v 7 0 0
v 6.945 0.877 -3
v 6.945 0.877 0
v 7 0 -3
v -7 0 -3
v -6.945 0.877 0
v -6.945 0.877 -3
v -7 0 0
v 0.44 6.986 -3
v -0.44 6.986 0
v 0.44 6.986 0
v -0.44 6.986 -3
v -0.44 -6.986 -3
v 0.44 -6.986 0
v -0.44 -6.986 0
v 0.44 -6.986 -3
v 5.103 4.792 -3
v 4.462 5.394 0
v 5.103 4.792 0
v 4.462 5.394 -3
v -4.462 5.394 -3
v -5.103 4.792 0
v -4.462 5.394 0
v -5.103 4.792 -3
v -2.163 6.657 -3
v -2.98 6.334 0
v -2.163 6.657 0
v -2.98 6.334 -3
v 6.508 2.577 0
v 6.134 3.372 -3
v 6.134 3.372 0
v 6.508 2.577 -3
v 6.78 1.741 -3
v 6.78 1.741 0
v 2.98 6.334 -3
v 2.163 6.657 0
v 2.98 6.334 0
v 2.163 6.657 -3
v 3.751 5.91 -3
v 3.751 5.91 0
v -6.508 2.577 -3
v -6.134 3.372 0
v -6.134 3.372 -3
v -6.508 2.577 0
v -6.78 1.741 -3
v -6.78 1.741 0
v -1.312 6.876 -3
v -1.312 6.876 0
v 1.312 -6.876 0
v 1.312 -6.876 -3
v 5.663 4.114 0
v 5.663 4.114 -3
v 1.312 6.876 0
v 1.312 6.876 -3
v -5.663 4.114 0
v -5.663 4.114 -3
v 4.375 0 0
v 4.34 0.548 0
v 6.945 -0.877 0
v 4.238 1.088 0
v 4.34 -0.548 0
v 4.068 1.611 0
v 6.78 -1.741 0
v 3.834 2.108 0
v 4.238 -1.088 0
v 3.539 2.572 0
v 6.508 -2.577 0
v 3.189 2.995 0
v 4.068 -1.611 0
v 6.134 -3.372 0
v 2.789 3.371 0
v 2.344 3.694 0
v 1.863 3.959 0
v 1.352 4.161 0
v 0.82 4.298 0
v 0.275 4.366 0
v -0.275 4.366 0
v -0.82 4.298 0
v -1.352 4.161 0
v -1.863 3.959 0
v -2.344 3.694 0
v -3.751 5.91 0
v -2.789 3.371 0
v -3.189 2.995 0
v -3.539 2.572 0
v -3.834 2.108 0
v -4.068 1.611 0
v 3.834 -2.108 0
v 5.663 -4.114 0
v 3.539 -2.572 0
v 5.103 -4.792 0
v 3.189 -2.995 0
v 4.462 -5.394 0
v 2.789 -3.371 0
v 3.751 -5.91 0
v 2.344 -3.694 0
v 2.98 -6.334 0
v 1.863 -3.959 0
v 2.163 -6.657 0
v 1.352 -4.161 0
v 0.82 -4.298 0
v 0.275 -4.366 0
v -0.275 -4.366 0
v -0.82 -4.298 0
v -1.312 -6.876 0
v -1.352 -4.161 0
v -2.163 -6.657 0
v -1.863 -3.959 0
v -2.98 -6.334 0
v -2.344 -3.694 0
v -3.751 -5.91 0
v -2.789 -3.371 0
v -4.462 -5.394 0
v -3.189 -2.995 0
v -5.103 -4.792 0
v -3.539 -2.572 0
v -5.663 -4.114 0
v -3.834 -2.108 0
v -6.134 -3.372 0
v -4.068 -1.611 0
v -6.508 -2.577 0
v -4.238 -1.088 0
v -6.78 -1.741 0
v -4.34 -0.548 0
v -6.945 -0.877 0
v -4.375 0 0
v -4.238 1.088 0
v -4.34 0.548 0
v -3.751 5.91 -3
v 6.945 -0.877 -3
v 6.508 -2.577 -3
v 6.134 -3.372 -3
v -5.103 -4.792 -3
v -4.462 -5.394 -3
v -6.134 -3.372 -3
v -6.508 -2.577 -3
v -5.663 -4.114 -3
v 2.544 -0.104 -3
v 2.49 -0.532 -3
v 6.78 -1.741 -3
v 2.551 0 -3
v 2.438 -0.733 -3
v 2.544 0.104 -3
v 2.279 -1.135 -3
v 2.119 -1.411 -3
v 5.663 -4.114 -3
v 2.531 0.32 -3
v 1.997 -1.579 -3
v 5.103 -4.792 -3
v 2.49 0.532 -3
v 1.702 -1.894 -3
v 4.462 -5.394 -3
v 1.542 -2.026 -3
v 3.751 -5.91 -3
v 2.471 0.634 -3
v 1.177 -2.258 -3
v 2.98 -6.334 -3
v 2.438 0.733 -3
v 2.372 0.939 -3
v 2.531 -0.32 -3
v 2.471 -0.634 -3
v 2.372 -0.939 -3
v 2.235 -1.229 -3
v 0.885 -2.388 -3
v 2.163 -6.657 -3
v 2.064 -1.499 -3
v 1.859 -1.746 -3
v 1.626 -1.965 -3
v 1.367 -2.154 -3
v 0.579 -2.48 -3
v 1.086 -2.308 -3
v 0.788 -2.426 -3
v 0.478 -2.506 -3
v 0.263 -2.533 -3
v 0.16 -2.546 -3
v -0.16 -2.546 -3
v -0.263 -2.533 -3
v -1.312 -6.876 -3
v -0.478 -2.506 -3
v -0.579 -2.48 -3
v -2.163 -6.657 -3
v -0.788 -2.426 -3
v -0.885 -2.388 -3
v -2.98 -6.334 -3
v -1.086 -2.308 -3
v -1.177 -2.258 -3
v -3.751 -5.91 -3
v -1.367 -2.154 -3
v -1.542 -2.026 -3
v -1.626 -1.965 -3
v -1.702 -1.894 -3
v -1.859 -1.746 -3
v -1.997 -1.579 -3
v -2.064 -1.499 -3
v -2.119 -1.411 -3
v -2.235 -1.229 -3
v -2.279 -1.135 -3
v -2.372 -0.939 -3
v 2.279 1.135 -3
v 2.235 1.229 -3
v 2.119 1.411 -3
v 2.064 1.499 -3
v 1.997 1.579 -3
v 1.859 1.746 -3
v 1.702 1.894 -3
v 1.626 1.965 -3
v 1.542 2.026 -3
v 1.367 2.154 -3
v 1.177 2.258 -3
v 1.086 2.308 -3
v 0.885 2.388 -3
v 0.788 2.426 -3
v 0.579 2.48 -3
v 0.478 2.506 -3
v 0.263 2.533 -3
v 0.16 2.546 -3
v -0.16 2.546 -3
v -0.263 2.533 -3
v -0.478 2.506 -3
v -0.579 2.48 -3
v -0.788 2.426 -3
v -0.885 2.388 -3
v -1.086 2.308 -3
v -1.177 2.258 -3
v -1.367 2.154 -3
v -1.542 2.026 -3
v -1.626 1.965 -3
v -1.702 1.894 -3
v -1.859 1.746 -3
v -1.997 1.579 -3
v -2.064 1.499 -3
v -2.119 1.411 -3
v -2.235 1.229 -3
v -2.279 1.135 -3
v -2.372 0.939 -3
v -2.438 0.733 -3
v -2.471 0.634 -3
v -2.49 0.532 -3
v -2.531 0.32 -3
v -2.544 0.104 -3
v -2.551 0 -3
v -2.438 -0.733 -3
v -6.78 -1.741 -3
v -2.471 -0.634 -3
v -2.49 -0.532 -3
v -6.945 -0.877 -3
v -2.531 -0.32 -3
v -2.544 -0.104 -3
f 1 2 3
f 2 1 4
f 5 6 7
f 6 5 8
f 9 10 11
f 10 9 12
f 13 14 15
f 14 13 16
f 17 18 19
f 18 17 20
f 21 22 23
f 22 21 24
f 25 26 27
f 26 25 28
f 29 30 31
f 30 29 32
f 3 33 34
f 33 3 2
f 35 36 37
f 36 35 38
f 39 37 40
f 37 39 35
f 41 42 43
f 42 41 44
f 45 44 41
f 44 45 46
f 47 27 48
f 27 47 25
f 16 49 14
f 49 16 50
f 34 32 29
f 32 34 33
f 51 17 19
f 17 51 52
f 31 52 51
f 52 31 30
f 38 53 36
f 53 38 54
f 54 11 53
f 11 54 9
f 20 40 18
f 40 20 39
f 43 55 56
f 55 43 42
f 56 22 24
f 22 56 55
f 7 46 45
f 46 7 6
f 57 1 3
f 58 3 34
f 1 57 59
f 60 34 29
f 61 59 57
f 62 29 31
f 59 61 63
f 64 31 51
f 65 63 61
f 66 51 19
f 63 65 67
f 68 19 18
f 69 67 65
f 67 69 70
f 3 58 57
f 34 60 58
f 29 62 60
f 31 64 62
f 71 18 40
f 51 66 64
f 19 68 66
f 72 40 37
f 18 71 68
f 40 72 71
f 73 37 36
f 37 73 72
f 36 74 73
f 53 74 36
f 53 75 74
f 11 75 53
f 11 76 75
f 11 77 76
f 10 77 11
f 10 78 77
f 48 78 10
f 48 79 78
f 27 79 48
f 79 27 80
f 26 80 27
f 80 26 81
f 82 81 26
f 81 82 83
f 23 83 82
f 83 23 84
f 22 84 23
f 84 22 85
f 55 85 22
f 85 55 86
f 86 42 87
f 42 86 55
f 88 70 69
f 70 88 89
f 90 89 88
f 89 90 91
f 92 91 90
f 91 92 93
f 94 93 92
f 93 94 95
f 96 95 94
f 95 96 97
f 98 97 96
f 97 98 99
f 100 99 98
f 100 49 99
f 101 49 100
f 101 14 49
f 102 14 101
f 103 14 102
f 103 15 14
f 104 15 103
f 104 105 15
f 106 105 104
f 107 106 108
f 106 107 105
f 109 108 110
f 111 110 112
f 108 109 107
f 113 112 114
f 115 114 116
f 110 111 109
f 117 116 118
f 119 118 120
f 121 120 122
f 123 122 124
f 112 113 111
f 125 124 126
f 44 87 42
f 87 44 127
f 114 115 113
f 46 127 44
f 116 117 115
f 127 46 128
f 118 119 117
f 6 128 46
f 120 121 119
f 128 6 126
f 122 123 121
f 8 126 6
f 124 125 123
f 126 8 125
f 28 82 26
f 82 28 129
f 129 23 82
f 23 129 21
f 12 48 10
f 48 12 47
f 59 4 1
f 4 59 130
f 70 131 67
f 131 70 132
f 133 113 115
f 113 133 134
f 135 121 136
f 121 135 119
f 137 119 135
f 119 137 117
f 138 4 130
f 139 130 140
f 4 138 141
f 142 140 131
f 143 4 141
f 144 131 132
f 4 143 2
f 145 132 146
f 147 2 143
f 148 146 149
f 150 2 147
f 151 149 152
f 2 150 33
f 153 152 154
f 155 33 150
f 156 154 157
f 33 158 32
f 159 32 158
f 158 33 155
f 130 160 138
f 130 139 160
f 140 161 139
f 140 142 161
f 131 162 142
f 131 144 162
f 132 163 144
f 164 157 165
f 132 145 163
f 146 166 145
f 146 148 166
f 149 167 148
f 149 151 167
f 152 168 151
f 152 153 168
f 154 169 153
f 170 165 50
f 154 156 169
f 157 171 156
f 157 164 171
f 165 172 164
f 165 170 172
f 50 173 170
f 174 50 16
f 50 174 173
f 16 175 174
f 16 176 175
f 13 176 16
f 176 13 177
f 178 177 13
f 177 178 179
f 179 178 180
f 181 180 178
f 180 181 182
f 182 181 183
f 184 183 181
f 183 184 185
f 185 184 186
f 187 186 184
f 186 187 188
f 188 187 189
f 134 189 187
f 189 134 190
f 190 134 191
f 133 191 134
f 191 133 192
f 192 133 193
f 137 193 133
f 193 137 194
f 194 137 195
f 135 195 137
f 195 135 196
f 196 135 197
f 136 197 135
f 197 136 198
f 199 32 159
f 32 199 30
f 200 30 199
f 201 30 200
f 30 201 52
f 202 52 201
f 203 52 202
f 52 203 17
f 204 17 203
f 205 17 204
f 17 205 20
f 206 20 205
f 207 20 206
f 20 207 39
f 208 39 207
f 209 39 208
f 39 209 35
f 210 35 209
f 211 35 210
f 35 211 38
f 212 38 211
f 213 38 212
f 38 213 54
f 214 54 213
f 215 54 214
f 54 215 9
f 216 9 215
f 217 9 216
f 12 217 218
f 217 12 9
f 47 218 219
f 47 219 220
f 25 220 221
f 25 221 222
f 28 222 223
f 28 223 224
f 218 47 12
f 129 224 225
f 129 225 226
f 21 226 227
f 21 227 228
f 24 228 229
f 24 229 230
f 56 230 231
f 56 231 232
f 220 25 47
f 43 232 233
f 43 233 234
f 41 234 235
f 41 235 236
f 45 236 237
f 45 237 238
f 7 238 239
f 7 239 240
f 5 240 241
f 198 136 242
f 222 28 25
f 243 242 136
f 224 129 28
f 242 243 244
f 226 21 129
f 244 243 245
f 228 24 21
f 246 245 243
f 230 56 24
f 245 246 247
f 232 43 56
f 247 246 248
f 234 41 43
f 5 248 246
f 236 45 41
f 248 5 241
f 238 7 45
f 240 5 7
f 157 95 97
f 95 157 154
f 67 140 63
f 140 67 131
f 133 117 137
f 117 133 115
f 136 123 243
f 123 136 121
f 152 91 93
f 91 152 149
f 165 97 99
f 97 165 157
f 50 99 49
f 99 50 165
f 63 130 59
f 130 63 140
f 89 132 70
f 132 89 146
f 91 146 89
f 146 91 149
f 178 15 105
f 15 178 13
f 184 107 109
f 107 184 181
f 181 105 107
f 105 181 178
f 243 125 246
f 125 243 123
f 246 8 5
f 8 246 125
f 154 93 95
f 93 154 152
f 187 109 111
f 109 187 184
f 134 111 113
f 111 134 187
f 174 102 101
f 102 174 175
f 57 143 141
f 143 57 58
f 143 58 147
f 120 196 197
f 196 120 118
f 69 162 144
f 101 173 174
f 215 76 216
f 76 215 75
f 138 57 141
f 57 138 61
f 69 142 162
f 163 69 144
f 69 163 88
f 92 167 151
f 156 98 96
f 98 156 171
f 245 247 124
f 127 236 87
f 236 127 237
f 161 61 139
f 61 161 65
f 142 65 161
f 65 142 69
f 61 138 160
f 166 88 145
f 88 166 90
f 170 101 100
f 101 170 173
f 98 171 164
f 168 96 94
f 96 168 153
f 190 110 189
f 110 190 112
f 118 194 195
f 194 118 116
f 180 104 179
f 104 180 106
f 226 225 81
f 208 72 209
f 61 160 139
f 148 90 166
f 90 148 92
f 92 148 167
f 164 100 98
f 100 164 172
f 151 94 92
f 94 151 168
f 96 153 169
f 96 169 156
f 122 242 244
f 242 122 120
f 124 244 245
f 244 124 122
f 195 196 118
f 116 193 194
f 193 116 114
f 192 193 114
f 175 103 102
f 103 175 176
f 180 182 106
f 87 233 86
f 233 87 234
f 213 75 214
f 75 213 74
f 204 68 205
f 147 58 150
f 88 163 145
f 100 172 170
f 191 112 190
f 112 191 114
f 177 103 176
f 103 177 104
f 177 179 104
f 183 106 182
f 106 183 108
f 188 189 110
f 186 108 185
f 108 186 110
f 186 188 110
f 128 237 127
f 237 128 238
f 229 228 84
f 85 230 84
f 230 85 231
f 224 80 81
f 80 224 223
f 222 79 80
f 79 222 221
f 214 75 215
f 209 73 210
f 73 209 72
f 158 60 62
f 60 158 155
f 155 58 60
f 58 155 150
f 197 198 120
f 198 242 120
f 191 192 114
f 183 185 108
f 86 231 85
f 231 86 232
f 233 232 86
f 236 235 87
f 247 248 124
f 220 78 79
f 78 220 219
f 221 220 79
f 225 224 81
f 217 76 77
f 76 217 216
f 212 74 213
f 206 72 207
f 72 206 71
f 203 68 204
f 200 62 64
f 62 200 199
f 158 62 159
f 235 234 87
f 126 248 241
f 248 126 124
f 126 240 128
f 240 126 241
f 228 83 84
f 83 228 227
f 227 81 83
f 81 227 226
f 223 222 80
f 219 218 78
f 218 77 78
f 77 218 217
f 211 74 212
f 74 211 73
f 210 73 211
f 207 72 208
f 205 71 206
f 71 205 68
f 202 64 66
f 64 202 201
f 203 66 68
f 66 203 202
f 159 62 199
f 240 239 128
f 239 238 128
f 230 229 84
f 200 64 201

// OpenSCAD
$fn = 50;


difference() {
	union() {
		translate(v = [0, 0, -3.0000000000]) {
			cylinder(h = 3, r = 7.0000000000);
		}
		translate(v = [0, 0, -3.0000000000]) {
			cylinder(h = 3, r = 2.8750000000);
		}
	}
	union() {
		translate(v = [0, 0, 0]) {
			rotate(a = [0, 0, 0]) {
				difference() {
					union() {
						translate(v = [0, 0, -3.0000000000]) {
							cylinder(h = 3, r = 2.0000000000);
						}
						translate(v = [0, 0, -3.7000000000]) {
							cylinder(h = 3.7000000000, r1 = 2.1250000000, r2 = 4.3750000000);
						}
						translate(v = [0, 0, -3.0000000000]) {
							cylinder(h = 3, r = 2.1250000000);
						}
						translate(v = [0, 0, -3.0000000000]) {
							cylinder(h = 3, r = 2.0000000000);
						}
					}
					union();
				}
			}
		}
	}
}
